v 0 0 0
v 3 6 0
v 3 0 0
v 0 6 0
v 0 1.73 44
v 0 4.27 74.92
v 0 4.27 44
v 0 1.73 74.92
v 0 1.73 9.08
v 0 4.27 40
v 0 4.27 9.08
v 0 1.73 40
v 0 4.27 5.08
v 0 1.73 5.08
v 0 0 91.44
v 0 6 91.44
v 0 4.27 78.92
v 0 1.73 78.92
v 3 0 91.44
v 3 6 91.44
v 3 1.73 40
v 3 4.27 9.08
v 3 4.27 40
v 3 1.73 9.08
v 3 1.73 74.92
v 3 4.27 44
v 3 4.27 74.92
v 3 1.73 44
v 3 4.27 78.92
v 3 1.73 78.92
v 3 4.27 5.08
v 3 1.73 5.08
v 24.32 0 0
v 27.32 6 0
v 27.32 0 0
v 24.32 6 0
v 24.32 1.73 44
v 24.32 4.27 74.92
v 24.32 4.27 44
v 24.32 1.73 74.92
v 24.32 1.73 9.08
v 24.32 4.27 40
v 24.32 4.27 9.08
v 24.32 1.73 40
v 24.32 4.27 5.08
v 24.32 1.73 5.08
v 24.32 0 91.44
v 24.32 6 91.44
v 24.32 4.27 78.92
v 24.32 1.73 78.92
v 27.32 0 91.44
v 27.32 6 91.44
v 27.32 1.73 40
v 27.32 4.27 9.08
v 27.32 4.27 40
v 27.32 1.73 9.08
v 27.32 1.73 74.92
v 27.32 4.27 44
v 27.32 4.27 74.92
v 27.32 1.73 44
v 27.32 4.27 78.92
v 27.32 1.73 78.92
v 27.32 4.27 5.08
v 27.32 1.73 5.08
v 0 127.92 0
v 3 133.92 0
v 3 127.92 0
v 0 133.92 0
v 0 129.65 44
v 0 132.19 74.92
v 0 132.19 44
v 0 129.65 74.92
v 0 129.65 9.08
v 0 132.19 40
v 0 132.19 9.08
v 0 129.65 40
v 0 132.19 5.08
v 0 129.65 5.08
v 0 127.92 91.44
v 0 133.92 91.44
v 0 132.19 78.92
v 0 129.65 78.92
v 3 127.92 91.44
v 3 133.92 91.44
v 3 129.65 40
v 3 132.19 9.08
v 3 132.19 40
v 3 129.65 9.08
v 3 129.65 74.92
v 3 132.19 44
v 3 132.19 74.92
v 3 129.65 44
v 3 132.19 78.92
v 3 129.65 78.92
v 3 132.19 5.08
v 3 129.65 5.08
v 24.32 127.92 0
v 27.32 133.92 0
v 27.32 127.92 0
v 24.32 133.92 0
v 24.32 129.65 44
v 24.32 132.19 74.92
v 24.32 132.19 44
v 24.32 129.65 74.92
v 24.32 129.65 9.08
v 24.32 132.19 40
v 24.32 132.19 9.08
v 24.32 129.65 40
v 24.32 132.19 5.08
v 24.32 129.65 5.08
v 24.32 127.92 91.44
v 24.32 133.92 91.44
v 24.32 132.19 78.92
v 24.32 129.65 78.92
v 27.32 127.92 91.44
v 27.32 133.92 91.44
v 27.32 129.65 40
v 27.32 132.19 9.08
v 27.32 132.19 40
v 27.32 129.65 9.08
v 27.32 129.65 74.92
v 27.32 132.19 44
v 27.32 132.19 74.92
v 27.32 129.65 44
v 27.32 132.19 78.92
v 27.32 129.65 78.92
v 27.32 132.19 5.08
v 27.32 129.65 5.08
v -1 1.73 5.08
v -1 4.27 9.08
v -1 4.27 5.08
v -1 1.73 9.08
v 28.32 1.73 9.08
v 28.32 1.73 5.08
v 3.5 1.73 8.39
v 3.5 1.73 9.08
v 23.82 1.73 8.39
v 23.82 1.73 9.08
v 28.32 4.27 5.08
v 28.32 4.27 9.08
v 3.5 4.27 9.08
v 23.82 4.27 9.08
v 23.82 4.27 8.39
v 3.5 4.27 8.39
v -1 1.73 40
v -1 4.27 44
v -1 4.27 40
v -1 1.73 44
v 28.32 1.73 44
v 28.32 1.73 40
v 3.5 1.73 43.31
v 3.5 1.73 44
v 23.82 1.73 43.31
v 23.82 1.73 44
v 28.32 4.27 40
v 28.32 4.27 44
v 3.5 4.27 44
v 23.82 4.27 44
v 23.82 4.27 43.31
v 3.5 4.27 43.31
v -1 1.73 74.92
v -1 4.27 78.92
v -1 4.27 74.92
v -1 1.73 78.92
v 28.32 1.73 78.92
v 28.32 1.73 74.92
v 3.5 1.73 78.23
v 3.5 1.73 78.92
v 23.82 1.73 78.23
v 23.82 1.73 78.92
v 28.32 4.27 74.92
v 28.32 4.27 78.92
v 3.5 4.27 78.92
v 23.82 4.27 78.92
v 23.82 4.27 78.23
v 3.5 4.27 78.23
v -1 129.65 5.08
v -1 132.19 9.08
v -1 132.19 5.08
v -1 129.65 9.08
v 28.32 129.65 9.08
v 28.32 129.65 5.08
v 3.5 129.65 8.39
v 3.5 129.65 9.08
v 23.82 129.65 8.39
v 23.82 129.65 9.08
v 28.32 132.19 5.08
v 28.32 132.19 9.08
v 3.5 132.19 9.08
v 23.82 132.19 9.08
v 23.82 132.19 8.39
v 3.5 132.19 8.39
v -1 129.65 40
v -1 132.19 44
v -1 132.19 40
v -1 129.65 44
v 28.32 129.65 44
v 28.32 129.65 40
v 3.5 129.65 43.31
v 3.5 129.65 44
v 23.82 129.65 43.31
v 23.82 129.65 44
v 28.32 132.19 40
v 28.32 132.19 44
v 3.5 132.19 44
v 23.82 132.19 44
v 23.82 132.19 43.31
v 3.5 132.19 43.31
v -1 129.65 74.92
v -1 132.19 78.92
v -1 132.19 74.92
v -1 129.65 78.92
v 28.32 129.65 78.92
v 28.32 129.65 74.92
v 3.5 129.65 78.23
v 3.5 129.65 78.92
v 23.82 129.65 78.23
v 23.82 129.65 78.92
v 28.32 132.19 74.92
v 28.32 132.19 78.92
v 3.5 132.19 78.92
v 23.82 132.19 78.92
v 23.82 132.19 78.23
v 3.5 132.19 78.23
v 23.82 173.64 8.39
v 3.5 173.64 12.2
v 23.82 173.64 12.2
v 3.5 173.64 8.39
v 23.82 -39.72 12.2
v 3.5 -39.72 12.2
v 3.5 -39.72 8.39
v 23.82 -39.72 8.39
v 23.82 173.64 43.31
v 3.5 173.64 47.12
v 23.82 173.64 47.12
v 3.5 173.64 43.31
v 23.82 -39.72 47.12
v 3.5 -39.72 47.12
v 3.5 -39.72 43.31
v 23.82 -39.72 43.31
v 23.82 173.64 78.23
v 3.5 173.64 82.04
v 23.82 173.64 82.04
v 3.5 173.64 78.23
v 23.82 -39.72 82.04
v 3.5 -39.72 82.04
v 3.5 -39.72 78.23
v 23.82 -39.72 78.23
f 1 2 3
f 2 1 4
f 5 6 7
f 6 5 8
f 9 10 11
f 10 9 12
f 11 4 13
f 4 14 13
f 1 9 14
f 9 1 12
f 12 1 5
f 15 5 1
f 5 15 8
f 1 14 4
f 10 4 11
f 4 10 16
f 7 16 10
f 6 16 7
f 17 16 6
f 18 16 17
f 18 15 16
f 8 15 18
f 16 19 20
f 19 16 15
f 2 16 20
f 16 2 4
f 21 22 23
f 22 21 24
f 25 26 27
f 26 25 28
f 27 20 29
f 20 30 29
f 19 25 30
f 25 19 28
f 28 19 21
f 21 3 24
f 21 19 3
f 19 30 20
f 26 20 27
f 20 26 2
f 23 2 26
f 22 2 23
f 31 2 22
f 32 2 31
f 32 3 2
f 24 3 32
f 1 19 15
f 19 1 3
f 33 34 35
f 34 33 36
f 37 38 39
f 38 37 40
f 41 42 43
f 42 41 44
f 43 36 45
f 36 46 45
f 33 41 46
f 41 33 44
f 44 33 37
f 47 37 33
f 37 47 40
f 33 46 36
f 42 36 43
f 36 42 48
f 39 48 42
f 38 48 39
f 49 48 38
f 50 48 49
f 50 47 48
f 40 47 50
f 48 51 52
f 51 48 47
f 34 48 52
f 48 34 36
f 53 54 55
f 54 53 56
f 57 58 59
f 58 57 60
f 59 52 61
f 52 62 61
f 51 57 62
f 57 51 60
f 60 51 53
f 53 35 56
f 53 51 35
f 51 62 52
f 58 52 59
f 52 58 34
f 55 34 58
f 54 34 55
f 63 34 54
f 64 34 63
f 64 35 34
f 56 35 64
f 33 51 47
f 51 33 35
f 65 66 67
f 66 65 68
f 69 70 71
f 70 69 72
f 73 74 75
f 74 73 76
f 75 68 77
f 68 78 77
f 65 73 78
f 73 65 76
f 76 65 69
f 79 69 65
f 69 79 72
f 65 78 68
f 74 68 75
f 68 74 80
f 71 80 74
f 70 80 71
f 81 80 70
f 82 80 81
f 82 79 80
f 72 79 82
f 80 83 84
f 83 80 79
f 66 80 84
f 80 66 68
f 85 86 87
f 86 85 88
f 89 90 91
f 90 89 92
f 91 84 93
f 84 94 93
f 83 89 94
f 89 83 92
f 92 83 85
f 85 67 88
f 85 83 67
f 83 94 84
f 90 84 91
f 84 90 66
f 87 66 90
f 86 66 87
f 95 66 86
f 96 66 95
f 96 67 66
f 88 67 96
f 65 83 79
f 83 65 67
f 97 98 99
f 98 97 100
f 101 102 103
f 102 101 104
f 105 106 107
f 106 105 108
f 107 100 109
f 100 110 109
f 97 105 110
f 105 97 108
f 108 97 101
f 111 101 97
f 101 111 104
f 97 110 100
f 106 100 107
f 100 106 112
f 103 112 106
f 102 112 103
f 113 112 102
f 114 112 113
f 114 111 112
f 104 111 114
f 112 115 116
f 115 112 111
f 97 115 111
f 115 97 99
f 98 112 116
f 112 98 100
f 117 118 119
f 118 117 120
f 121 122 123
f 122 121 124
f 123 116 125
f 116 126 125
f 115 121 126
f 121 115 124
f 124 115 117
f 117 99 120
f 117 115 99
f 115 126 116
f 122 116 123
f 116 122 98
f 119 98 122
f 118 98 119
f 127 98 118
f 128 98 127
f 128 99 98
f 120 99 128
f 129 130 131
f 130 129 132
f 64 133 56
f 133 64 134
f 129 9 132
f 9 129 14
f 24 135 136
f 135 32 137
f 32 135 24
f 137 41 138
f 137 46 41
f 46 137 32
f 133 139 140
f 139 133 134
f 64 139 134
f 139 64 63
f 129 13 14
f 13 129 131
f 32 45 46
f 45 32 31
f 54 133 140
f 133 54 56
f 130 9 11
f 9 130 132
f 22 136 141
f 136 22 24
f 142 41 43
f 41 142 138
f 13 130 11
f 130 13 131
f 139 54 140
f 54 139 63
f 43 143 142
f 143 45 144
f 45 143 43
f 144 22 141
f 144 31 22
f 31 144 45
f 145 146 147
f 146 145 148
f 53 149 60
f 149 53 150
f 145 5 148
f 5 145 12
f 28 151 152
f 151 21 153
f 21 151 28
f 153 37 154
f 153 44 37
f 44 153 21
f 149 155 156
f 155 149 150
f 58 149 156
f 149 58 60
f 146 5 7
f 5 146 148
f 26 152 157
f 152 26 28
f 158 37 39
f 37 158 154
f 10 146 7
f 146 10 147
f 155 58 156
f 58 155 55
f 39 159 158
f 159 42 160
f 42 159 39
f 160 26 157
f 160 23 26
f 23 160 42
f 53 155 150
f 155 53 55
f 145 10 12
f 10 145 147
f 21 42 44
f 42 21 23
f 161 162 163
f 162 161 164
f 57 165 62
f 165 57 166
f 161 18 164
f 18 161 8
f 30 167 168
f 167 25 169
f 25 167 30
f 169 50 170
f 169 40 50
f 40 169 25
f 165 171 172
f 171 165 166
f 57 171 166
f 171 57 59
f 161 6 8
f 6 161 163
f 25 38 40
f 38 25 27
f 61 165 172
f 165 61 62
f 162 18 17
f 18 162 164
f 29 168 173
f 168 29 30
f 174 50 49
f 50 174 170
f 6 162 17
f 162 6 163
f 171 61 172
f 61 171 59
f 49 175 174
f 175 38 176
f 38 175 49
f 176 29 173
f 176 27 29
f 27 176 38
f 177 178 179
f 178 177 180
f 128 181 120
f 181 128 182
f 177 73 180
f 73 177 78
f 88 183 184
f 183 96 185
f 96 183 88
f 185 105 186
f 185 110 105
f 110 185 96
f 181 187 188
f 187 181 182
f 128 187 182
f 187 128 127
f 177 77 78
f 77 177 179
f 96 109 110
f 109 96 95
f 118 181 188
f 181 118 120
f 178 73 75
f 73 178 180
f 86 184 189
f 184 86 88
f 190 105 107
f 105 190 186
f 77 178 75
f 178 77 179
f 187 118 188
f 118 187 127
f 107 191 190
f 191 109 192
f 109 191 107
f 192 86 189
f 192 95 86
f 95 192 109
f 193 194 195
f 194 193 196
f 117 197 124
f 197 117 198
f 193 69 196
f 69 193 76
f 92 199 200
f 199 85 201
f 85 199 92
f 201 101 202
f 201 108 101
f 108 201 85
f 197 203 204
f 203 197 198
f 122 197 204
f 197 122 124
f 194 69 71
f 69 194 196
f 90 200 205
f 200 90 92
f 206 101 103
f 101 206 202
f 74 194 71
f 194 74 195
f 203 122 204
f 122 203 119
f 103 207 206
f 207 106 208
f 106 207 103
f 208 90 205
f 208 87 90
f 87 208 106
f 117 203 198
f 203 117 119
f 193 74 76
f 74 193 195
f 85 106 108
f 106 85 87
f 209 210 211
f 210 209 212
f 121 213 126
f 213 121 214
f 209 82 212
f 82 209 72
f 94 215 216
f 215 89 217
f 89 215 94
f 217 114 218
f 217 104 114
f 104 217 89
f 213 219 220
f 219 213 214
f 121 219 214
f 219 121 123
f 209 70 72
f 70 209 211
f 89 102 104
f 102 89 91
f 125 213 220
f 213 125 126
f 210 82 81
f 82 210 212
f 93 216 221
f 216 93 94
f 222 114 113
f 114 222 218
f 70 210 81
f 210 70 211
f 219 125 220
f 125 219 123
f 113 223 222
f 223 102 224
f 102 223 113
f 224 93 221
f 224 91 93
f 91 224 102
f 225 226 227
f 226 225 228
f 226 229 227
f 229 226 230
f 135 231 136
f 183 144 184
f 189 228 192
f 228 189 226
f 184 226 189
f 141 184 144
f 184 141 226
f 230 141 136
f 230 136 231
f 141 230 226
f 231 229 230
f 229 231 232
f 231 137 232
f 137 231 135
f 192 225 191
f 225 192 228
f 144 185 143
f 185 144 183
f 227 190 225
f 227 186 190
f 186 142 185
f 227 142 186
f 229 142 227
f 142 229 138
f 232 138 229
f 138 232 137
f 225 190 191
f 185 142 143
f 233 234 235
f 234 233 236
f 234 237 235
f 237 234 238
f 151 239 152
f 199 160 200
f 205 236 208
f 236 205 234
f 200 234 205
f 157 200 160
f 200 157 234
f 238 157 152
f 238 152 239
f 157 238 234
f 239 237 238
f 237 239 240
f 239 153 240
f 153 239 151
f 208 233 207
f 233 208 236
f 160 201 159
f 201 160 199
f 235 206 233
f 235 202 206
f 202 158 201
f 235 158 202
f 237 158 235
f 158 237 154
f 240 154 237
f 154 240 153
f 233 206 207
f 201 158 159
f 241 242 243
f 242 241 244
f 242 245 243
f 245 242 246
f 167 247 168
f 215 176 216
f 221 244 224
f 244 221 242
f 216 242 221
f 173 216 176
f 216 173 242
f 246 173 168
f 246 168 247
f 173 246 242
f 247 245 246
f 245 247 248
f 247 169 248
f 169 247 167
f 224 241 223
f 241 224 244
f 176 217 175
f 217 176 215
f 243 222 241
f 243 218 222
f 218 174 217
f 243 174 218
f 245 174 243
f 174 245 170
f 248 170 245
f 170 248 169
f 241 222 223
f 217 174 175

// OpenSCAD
// file: common/board.scad
// board.scad

BOARD_DEFAULT_LENGTH = 600;
BOARD_DEFAULT_WIDTH = 120;
BOARD_DEFAULT_THICKNESS = 120;

function board_get_default_size()
    = [BOARD_DEFAULT_LENGTH, BOARD_DEFAULT_WIDTH, BOARD_DEFAULT_THICKNESS];

module board(size = board_get_default_size(), center = false)
{
    // size[0] is always with the grain
    // size[1] is against the grain
    // size[2] is the board thickness
    cube(size = size, center = center);
}
// main file
// shelf.scad
// units: centimeter

use <common/board.scad>

TENON_OVERRUN = 1.0;
SHELF_BOARD_GAP = 0.5;
SHELF_INSET = 0.5;

// inside post to post
SHELF_INNER_X_DISTANCE =
        20.32
        + (2 * SHELF_BOARD_GAP);
SHELF_INNER_Y_DISTANCE = 121.92;

VERT_SUPPORT_BOARD_LENGTH = 91.44;
VERT_SUPPORT_BOARD_WIDTH = 6;
VERT_SUPPORT_BOARD_THICKNESS = 3;

HORIZ_SUPPORT_BOARD_LENGTH =
        SHELF_INNER_X_DISTANCE
        + (2 * VERT_SUPPORT_BOARD_THICKNESS)
        + (2 * TENON_OVERRUN);
HORIZ_SUPPORT_BOARD_WIDTH = 4;
HORIZ_SUPPORT_BOARD_THICKNESS = 2.54;

SHELF_BOARD_LENGTH = 213.36;
SHELF_BOARD_WIDTH = 20.32;
SHELF_BOARD_THICKNESS = 3.81;

VERT_SUPPORT_OFFSETS = [
        5.08,
        40,
        40 + (40 - 5.08)];

module vert_support_board()
{
    board_size = [
            VERT_SUPPORT_BOARD_LENGTH,
            VERT_SUPPORT_BOARD_WIDTH,
            VERT_SUPPORT_BOARD_THICKNESS];

    translate([VERT_SUPPORT_BOARD_THICKNESS, 0, 0])
        rotate([0, -90, 0])
            board(board_size);
}

module horiz_support_board()
{
    board_size = [
            HORIZ_SUPPORT_BOARD_LENGTH,
            HORIZ_SUPPORT_BOARD_WIDTH,
            HORIZ_SUPPORT_BOARD_THICKNESS];

    offset_m = [
            -TENON_OVERRUN,
            HORIZ_SUPPORT_BOARD_THICKNESS
                    + (VERT_SUPPORT_BOARD_WIDTH/2)
                    - (HORIZ_SUPPORT_BOARD_THICKNESS/2),
            0];

    translate(offset_m)
        rotate([90, 0, 0])
            board(board_size);
}

module shelf_board()
{
    board_size = [
            SHELF_BOARD_LENGTH,
            SHELF_BOARD_WIDTH,
            SHELF_BOARD_THICKNESS];

    translate([SHELF_BOARD_WIDTH, 0, 0])
        rotate([0, 0, 90])
            board(board_size);
}

module horizontal_supports()
{
    for(z = VERT_SUPPORT_OFFSETS)
    {
        translate([0, 0, z])
            horiz_support_board();
    }
}

module vertical_supports()
{
    offset_x =
            VERT_SUPPORT_BOARD_THICKNESS
            + SHELF_INNER_X_DISTANCE;

    vert_support_board();

    translate([offset_x, 0, 0])
        vert_support_board();
}

module vertical_assembly()
{
    offset_y =
            VERT_SUPPORT_BOARD_WIDTH
            + SHELF_INNER_Y_DISTANCE;

    vertical_supports();

    translate([0, offset_y, 0])
        vertical_supports();
}

module horizontal_assembly()
{
    offset_y =
            VERT_SUPPORT_BOARD_WIDTH
            + SHELF_INNER_Y_DISTANCE;

    horizontal_supports();

    translate([0, offset_y, 0])
        horizontal_supports();
}

module shelf_boards_assembly()
{
    mx =
            VERT_SUPPORT_BOARD_WIDTH
            + (SHELF_INNER_Y_DISTANCE / 2);

    bx = SHELF_BOARD_LENGTH / 2;

    offset_y = mx - bx;

    for(z = VERT_SUPPORT_OFFSETS)
    {
        offset_m = [
                VERT_SUPPORT_BOARD_THICKNESS
                        + SHELF_BOARD_GAP,
                offset_y,
                z + SHELF_BOARD_THICKNESS - SHELF_INSET];

        translate(offset_m)
            shelf_board();
    }
}

module shelf()
{
    color("Peru")
        vertical_assembly();

    color("SandyBrown")
        horizontal_assembly();

    color("NavajoWhite")
        shelf_boards_assembly();
}

shelf();
